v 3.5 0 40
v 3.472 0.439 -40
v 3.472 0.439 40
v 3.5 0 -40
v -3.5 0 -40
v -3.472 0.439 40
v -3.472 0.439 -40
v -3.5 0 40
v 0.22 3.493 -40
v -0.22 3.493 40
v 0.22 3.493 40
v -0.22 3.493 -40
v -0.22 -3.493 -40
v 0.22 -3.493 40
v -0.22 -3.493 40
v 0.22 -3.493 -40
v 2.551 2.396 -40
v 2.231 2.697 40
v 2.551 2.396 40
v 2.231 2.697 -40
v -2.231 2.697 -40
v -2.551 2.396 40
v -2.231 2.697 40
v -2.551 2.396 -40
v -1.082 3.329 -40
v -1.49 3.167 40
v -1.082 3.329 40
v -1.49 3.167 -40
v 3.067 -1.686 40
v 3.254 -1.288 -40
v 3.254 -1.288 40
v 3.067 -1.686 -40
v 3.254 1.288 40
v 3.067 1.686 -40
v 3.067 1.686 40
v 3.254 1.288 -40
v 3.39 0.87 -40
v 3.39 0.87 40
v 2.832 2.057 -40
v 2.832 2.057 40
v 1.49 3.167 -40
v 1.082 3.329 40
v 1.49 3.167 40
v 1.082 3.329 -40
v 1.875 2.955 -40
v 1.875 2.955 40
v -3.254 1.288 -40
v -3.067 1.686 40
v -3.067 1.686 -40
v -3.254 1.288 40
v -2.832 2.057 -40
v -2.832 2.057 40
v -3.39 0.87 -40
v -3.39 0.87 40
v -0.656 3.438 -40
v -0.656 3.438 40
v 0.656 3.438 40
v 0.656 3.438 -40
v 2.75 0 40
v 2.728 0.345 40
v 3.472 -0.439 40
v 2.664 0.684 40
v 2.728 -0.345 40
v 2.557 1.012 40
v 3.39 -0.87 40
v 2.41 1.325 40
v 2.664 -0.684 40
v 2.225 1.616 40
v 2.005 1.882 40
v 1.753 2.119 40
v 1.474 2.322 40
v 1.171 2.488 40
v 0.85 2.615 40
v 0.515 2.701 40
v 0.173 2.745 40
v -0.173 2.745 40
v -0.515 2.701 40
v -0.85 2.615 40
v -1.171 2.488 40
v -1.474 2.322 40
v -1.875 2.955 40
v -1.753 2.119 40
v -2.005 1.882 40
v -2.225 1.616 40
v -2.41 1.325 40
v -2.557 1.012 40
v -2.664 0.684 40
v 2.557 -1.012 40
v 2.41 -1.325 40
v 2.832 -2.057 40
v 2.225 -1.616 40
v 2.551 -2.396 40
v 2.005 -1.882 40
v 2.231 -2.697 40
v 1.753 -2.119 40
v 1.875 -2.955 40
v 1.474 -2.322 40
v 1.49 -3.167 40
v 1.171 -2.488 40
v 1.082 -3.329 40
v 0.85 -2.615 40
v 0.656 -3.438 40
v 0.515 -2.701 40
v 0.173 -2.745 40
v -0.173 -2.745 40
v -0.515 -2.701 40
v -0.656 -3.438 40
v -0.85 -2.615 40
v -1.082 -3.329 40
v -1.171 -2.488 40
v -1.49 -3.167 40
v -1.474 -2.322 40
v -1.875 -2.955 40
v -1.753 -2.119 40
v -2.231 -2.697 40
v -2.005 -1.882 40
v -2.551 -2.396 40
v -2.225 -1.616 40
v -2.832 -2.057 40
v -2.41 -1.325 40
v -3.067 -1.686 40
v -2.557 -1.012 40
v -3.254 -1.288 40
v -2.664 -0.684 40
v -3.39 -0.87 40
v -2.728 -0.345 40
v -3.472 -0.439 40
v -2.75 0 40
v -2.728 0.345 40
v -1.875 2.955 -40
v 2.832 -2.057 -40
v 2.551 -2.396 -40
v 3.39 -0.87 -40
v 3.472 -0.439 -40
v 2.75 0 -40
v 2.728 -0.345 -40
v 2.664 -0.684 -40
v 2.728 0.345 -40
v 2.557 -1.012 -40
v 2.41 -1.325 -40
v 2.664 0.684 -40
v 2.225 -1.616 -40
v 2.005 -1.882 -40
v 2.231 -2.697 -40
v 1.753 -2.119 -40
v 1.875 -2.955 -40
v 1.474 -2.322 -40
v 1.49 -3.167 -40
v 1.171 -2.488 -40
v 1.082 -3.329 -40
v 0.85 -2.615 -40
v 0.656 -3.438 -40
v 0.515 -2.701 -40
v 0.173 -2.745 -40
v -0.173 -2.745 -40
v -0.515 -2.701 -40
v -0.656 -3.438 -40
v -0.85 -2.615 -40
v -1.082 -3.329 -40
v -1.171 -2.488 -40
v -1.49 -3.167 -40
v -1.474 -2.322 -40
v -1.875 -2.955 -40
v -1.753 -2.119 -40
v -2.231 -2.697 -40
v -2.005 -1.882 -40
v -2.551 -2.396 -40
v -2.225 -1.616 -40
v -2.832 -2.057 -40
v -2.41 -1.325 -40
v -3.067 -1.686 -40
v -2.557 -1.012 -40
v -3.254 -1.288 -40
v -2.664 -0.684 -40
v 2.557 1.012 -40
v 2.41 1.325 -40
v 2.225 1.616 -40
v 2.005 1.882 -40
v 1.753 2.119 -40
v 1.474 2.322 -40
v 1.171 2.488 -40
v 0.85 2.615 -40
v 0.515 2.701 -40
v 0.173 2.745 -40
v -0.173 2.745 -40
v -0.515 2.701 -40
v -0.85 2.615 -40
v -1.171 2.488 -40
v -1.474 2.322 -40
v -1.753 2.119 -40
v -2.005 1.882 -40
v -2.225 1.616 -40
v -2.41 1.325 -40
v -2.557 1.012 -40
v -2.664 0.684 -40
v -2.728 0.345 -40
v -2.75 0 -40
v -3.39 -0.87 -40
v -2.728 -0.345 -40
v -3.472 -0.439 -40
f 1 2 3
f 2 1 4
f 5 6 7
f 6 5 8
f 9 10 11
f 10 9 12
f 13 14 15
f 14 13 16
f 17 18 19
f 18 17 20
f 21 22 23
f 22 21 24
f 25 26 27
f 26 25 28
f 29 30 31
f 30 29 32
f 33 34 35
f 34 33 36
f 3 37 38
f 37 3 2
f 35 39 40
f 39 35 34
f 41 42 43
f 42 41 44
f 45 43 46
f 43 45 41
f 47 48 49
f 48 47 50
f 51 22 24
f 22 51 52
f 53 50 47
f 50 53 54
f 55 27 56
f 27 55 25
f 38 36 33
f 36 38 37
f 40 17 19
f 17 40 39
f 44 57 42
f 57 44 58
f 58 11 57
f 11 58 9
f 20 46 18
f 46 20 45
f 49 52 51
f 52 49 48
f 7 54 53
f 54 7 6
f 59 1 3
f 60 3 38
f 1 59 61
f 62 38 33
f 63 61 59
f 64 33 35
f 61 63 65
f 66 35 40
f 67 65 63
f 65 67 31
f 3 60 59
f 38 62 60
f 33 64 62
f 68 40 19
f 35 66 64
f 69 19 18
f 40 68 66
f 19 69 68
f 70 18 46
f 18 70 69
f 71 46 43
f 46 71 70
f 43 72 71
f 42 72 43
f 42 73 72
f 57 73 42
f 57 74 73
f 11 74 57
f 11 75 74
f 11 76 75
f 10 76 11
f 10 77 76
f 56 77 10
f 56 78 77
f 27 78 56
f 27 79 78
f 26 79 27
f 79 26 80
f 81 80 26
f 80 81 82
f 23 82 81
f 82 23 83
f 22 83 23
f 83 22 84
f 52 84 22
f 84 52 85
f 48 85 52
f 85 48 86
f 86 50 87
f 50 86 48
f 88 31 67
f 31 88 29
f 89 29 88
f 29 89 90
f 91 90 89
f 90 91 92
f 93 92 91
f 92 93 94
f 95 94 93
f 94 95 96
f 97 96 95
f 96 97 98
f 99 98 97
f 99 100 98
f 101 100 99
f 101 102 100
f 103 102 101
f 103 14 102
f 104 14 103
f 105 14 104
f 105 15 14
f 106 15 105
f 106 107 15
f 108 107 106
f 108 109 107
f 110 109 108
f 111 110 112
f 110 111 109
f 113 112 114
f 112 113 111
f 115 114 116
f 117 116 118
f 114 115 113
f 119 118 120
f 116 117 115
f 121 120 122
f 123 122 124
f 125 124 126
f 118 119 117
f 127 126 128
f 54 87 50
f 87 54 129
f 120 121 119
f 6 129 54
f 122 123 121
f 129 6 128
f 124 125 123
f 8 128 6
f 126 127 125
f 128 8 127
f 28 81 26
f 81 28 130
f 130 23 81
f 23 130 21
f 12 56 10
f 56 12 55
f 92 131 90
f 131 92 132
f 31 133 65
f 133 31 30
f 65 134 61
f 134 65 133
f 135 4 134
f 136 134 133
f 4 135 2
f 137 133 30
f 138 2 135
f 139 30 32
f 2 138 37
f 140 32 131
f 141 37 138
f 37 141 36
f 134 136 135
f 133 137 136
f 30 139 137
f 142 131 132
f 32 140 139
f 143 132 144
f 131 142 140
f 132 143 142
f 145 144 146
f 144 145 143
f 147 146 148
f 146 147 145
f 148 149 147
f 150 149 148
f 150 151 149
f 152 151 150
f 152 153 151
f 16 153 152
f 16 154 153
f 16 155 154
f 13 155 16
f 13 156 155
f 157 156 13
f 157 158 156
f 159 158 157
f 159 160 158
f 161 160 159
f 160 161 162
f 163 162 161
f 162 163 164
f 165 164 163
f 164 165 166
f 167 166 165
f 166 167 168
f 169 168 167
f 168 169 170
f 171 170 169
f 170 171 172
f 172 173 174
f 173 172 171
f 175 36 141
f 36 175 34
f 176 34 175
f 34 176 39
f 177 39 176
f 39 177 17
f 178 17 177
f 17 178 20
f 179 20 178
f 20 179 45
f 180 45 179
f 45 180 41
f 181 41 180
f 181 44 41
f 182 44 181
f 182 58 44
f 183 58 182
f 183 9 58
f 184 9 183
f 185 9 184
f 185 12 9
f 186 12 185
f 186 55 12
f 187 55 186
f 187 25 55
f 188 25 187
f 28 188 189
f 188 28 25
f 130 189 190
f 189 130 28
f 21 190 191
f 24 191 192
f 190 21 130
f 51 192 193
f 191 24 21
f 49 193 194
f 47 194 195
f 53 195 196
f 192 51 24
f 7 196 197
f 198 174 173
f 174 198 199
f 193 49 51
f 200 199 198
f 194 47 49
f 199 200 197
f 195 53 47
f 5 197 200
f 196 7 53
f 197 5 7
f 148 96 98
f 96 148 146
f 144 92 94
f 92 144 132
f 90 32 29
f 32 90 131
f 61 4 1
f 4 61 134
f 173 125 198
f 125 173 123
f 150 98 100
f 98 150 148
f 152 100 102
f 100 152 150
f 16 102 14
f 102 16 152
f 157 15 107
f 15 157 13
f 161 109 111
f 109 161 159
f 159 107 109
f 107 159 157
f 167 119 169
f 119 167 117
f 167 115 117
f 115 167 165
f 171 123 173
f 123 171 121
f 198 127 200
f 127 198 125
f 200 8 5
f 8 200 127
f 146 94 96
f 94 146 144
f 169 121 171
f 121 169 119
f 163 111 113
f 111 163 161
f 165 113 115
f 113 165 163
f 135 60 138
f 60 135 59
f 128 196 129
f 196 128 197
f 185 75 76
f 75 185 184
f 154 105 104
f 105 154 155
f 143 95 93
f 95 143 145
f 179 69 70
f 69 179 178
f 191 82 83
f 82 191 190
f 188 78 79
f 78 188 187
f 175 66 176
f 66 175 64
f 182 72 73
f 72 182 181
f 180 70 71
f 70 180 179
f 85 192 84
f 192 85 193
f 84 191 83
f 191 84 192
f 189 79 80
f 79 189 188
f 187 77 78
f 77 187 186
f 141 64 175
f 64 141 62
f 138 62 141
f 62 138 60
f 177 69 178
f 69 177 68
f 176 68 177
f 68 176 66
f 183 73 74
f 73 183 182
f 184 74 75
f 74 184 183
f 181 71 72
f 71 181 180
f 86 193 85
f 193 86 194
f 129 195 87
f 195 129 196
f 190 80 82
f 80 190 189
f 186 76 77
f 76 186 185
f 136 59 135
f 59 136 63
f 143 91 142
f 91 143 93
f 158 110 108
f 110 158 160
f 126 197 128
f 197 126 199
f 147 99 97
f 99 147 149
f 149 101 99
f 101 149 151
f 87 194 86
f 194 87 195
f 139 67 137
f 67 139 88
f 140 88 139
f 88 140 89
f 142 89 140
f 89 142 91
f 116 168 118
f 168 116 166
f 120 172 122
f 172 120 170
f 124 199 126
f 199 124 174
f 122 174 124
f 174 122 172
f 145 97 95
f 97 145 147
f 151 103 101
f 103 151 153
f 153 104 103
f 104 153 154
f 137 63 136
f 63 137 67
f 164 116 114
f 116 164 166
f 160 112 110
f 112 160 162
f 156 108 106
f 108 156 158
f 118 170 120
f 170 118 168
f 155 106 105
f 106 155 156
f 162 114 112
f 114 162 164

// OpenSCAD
$fn = 50;


difference() {
	union() {
		translate(v = [0, 0, -40.0000000000]) {
			cylinder(h = 80, r = 3.5000000000);
		}
	}
	union() {
		translate(v = [0, 0, -100.0000000000]) {
			cylinder(h = 200, r = 2.7500000000);
		}
	}
}
